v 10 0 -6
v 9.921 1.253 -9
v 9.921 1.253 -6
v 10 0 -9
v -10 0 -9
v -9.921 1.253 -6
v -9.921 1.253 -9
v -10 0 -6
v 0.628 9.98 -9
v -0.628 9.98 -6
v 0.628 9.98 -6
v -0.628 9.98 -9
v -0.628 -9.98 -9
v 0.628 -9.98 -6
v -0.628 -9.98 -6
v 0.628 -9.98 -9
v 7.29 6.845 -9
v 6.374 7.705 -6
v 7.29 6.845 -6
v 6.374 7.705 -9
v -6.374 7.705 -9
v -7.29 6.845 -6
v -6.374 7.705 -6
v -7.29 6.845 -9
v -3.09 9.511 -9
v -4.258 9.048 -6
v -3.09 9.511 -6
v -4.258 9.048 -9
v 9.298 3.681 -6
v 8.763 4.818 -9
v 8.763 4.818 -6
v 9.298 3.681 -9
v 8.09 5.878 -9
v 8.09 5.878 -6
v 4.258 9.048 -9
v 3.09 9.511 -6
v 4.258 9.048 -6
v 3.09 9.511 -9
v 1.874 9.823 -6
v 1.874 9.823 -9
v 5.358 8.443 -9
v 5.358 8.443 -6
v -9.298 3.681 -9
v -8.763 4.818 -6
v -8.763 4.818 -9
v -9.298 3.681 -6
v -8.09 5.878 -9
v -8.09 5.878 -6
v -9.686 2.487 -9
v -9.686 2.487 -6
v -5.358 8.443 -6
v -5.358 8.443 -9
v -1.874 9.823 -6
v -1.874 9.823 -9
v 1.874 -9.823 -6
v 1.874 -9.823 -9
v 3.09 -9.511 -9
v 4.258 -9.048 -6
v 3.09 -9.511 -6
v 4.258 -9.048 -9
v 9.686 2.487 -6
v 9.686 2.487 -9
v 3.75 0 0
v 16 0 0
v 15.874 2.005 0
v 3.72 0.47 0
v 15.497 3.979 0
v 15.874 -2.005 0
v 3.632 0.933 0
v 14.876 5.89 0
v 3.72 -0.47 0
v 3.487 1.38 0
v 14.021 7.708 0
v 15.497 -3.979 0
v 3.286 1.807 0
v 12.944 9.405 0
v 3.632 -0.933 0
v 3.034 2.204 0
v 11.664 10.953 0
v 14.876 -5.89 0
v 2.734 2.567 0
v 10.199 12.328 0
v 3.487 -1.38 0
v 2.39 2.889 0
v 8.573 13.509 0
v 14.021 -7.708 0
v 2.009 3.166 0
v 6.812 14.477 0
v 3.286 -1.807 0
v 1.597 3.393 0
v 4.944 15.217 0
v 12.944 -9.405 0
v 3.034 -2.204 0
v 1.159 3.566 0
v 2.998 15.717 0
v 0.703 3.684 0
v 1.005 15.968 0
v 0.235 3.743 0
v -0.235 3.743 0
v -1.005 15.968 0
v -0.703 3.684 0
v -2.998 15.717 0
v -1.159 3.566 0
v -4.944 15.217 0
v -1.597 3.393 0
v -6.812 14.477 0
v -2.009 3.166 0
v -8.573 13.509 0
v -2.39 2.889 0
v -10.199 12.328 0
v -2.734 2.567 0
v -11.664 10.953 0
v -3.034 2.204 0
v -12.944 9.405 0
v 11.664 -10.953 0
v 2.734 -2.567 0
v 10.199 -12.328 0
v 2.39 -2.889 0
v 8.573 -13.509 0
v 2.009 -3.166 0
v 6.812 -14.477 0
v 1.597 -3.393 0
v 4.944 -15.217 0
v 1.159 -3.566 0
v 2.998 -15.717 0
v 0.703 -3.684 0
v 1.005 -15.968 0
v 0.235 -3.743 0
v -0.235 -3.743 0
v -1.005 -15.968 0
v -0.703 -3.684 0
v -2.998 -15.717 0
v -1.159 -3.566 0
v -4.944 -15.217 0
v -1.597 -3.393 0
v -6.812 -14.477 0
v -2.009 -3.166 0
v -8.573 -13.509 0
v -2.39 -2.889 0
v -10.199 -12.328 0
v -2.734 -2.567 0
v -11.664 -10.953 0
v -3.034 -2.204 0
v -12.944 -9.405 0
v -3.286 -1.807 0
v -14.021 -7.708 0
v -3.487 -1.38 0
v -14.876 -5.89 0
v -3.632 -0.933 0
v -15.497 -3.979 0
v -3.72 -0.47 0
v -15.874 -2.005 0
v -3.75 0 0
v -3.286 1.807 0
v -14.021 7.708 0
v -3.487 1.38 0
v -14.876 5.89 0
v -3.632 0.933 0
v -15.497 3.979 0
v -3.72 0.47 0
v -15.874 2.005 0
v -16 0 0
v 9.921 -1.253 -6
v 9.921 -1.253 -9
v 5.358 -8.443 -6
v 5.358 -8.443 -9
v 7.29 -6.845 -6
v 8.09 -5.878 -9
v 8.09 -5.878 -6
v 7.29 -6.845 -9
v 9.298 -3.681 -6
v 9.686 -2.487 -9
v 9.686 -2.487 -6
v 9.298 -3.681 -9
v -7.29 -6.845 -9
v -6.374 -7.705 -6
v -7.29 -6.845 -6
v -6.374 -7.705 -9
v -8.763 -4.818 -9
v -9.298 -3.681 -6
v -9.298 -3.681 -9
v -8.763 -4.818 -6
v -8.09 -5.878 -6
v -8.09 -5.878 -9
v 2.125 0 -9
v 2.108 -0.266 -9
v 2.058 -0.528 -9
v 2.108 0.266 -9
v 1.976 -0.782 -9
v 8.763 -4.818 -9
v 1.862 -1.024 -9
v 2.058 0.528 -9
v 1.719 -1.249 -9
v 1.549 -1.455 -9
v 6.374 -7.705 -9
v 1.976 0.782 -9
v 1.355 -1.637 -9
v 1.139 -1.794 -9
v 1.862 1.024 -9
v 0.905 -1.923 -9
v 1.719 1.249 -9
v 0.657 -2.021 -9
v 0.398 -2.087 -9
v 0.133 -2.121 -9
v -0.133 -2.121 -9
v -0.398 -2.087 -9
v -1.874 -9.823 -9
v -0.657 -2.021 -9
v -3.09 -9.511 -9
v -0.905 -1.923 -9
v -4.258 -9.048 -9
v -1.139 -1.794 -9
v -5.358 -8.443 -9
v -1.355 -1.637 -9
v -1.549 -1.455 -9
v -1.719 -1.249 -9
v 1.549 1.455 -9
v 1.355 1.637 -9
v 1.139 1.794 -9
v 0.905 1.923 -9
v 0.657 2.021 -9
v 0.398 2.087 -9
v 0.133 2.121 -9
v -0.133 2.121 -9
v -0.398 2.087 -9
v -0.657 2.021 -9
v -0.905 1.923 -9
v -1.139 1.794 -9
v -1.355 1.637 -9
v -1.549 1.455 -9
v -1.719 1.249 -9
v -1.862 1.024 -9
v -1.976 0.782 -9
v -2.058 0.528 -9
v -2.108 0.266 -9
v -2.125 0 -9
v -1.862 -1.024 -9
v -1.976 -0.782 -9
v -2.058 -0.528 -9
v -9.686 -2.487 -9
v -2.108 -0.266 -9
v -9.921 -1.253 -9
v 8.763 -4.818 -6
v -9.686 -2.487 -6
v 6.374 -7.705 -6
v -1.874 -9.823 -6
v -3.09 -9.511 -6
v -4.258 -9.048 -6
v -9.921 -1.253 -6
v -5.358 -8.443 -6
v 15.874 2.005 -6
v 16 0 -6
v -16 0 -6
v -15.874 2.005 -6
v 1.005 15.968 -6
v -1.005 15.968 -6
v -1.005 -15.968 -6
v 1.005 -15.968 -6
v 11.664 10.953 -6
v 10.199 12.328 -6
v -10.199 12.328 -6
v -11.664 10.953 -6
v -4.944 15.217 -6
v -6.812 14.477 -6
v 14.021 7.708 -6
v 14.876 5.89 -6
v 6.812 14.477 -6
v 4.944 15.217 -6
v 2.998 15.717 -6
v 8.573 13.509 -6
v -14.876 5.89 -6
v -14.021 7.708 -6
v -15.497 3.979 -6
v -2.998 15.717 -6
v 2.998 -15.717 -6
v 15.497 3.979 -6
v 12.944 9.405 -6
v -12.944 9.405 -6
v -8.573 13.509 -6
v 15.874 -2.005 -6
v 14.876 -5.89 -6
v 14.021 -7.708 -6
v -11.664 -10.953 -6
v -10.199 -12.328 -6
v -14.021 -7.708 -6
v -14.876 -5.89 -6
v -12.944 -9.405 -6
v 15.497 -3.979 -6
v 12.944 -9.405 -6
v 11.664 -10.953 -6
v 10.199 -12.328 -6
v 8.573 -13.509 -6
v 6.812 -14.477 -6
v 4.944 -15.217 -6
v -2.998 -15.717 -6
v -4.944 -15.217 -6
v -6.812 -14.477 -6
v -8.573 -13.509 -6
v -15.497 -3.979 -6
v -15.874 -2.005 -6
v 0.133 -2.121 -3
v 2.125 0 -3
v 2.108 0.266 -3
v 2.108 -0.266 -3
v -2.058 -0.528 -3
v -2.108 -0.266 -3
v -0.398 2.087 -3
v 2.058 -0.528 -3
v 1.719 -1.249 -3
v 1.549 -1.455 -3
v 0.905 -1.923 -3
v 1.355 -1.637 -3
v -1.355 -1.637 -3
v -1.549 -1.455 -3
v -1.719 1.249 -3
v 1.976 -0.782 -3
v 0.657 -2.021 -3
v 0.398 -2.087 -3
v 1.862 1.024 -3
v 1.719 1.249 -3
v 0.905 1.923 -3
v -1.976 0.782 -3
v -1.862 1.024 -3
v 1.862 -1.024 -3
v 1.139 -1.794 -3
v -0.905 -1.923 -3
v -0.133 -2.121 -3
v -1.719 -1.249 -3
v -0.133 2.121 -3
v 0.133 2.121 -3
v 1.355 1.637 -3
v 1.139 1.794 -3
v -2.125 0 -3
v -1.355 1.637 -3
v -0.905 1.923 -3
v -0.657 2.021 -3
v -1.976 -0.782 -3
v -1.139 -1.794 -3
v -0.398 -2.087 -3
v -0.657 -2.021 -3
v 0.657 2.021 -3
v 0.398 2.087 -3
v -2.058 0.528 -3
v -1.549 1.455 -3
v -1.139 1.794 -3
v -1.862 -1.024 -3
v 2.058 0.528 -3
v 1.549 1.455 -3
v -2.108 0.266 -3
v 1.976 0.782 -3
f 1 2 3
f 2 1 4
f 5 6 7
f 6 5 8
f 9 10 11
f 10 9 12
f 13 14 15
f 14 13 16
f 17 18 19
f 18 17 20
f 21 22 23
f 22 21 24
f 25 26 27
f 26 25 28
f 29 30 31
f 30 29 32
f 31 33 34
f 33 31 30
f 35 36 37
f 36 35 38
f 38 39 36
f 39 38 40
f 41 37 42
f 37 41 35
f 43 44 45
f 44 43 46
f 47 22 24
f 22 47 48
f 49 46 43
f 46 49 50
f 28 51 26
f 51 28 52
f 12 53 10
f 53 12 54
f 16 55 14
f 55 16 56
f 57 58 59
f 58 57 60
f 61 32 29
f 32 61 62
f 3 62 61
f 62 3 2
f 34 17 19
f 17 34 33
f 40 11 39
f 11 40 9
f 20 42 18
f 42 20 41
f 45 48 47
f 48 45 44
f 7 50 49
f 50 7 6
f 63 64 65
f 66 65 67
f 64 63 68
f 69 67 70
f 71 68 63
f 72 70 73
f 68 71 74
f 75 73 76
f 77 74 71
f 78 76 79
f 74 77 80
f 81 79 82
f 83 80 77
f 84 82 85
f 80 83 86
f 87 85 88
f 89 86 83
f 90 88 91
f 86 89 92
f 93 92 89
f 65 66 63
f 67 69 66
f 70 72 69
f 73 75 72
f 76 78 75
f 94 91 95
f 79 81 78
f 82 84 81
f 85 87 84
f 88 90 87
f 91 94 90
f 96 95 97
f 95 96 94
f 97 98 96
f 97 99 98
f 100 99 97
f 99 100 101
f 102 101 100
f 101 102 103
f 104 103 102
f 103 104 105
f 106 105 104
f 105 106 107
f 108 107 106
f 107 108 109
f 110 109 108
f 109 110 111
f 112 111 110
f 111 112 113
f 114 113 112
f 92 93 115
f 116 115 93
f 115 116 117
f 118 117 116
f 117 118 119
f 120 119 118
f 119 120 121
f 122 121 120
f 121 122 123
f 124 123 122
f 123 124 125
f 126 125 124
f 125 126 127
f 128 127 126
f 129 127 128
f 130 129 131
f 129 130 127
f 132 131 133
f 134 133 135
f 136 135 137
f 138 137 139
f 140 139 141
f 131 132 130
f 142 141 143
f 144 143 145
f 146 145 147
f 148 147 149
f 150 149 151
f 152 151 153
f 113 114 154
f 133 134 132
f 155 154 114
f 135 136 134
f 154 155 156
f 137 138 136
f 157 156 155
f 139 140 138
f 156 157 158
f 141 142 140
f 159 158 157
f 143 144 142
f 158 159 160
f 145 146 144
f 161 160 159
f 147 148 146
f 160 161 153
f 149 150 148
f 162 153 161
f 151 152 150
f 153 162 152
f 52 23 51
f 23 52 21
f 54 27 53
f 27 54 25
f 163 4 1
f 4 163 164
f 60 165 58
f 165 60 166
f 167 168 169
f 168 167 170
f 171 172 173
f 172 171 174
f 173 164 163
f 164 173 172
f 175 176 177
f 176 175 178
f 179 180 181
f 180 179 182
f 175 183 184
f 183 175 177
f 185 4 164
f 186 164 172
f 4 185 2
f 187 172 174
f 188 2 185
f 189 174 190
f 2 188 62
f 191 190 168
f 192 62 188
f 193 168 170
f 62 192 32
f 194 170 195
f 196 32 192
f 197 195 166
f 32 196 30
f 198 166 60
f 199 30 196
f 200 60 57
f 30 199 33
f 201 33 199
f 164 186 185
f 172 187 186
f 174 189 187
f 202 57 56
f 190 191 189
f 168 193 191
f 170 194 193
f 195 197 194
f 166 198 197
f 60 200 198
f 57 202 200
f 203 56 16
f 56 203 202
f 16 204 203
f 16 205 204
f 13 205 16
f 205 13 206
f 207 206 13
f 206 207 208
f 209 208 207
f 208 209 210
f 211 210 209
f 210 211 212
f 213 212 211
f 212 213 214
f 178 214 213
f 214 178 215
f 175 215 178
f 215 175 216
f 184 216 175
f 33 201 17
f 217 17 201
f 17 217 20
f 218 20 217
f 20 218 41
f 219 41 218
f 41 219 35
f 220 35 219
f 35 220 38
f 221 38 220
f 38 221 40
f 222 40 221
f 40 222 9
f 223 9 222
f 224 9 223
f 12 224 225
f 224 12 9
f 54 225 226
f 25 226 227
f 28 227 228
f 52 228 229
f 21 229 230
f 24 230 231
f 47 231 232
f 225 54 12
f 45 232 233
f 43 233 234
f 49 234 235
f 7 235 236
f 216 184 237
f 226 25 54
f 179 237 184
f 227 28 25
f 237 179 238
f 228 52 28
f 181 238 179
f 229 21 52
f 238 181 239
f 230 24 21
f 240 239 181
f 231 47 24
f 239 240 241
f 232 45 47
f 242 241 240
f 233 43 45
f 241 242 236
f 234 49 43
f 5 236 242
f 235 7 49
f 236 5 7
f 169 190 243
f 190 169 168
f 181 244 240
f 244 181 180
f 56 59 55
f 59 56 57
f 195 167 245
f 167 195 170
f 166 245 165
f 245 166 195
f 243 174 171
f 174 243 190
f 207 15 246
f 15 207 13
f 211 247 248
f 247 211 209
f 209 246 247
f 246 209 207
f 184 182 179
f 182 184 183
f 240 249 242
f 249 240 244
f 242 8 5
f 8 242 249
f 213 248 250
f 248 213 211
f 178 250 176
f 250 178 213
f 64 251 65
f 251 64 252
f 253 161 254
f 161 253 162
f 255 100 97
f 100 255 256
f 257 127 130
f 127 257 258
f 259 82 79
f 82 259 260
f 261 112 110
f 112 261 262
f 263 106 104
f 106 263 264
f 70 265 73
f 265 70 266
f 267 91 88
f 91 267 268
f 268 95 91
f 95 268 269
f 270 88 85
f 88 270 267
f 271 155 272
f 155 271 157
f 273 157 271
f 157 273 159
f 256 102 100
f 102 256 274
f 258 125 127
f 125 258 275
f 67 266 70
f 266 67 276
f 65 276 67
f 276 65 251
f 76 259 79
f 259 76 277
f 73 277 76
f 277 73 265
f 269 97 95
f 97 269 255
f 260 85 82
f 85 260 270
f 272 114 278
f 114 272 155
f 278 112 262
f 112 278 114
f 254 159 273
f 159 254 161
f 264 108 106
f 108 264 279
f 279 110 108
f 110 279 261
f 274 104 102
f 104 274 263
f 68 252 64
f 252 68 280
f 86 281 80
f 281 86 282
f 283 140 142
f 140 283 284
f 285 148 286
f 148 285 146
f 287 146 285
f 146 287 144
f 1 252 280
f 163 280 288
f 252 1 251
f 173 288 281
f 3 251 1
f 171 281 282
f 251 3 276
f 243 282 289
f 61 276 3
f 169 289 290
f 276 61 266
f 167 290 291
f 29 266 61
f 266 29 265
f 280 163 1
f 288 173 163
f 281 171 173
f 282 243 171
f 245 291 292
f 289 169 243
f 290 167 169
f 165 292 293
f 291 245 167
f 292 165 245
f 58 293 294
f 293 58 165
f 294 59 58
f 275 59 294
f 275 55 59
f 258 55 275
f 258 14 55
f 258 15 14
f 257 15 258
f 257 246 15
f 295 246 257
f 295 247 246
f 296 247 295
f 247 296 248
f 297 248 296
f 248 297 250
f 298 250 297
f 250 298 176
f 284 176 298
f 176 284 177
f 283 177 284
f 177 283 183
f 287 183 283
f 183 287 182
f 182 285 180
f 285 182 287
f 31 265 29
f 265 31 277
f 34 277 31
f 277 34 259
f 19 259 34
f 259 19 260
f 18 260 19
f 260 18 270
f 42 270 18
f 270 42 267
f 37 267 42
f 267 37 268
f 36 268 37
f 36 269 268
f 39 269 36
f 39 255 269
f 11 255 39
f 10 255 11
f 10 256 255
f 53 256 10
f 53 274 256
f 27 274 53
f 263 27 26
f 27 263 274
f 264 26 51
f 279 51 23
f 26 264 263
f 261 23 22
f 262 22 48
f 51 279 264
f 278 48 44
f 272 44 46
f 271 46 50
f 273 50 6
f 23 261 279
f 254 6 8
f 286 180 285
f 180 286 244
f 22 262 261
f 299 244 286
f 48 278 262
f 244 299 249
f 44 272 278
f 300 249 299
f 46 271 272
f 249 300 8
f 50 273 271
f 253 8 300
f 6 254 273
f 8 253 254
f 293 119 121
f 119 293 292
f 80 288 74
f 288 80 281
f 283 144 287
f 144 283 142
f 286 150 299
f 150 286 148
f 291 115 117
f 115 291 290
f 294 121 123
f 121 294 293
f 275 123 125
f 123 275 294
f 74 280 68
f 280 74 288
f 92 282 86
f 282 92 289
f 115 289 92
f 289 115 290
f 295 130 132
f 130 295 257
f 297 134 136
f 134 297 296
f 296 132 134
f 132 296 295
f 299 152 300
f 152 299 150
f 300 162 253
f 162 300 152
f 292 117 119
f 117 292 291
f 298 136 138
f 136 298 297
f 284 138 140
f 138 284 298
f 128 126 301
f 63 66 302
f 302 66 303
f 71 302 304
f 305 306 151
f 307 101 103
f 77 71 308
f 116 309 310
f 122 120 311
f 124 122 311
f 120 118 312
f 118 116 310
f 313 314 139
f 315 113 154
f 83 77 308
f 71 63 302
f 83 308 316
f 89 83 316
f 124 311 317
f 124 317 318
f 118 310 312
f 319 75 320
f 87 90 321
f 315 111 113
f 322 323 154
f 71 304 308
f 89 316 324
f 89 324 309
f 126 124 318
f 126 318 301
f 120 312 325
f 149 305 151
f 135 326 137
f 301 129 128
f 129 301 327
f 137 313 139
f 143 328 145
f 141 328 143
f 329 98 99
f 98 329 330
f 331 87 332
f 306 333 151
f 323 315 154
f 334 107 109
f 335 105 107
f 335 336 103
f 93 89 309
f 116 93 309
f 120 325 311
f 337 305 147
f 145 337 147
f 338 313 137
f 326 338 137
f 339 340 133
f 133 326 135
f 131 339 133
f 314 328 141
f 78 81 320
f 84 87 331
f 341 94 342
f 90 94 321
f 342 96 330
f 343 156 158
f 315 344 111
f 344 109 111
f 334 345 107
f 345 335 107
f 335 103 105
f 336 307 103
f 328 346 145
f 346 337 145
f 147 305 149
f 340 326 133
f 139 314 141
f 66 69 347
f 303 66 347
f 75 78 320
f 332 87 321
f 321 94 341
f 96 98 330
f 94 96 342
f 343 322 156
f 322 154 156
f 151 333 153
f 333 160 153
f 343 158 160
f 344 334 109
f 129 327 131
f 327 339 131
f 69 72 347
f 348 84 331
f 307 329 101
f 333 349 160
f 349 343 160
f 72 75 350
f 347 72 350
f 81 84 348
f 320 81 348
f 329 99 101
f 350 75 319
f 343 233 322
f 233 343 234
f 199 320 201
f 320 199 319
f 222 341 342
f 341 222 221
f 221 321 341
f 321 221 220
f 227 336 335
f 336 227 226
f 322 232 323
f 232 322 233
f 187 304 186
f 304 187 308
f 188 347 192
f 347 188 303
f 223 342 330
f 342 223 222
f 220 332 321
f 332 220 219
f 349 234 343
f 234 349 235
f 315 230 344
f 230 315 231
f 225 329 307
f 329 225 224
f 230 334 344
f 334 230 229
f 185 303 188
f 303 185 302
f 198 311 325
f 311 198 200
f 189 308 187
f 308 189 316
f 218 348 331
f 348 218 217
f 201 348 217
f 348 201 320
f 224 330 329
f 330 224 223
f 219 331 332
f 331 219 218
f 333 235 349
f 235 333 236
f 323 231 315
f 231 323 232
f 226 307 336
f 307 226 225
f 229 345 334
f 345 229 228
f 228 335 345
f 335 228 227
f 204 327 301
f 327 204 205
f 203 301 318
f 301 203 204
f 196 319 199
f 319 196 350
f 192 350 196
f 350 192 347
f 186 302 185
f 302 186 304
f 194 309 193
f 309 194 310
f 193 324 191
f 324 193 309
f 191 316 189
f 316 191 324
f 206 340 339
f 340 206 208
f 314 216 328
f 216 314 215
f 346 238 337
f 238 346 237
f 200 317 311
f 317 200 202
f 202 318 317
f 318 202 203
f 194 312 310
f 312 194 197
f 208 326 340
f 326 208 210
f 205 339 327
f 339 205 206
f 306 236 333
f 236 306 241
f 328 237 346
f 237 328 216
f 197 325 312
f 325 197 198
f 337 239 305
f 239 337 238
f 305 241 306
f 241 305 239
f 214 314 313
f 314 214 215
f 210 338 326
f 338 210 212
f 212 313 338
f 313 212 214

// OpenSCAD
$fn = 50;


difference() {
	union() {
		translate(v = [0, 0, -9.0000000000]) {
			cylinder(h = 9, r = 10.0000000000);
		}
		translate(v = [0, 0, -6.0000000000]) {
			cylinder(h = 6, r = 16.0000000000);
		}
	}
	union() {
		translate(v = [0, 0, 0]) {
			rotate(a = [0, 0, 0]) {
				difference() {
					union() {
						#translate(v = [0, 0, -9.0000000000]) {
							cylinder(h = 9, r = 2.0000000000);
						}
						#translate(v = [0, 0, -3]) {
							cylinder(h = 3, r1 = 2.1250000000, r2 = 3.7500000000);
						}
						#translate(v = [0, 0, -9.0000000000]) {
							cylinder(h = 9, r = 2.1250000000);
						}
						#translate(v = [0, 0, -9.0000000000]) {
							cylinder(h = 9, r = 2.0000000000);
						}
					}
					union();
				}
			}
		}
	}
}
